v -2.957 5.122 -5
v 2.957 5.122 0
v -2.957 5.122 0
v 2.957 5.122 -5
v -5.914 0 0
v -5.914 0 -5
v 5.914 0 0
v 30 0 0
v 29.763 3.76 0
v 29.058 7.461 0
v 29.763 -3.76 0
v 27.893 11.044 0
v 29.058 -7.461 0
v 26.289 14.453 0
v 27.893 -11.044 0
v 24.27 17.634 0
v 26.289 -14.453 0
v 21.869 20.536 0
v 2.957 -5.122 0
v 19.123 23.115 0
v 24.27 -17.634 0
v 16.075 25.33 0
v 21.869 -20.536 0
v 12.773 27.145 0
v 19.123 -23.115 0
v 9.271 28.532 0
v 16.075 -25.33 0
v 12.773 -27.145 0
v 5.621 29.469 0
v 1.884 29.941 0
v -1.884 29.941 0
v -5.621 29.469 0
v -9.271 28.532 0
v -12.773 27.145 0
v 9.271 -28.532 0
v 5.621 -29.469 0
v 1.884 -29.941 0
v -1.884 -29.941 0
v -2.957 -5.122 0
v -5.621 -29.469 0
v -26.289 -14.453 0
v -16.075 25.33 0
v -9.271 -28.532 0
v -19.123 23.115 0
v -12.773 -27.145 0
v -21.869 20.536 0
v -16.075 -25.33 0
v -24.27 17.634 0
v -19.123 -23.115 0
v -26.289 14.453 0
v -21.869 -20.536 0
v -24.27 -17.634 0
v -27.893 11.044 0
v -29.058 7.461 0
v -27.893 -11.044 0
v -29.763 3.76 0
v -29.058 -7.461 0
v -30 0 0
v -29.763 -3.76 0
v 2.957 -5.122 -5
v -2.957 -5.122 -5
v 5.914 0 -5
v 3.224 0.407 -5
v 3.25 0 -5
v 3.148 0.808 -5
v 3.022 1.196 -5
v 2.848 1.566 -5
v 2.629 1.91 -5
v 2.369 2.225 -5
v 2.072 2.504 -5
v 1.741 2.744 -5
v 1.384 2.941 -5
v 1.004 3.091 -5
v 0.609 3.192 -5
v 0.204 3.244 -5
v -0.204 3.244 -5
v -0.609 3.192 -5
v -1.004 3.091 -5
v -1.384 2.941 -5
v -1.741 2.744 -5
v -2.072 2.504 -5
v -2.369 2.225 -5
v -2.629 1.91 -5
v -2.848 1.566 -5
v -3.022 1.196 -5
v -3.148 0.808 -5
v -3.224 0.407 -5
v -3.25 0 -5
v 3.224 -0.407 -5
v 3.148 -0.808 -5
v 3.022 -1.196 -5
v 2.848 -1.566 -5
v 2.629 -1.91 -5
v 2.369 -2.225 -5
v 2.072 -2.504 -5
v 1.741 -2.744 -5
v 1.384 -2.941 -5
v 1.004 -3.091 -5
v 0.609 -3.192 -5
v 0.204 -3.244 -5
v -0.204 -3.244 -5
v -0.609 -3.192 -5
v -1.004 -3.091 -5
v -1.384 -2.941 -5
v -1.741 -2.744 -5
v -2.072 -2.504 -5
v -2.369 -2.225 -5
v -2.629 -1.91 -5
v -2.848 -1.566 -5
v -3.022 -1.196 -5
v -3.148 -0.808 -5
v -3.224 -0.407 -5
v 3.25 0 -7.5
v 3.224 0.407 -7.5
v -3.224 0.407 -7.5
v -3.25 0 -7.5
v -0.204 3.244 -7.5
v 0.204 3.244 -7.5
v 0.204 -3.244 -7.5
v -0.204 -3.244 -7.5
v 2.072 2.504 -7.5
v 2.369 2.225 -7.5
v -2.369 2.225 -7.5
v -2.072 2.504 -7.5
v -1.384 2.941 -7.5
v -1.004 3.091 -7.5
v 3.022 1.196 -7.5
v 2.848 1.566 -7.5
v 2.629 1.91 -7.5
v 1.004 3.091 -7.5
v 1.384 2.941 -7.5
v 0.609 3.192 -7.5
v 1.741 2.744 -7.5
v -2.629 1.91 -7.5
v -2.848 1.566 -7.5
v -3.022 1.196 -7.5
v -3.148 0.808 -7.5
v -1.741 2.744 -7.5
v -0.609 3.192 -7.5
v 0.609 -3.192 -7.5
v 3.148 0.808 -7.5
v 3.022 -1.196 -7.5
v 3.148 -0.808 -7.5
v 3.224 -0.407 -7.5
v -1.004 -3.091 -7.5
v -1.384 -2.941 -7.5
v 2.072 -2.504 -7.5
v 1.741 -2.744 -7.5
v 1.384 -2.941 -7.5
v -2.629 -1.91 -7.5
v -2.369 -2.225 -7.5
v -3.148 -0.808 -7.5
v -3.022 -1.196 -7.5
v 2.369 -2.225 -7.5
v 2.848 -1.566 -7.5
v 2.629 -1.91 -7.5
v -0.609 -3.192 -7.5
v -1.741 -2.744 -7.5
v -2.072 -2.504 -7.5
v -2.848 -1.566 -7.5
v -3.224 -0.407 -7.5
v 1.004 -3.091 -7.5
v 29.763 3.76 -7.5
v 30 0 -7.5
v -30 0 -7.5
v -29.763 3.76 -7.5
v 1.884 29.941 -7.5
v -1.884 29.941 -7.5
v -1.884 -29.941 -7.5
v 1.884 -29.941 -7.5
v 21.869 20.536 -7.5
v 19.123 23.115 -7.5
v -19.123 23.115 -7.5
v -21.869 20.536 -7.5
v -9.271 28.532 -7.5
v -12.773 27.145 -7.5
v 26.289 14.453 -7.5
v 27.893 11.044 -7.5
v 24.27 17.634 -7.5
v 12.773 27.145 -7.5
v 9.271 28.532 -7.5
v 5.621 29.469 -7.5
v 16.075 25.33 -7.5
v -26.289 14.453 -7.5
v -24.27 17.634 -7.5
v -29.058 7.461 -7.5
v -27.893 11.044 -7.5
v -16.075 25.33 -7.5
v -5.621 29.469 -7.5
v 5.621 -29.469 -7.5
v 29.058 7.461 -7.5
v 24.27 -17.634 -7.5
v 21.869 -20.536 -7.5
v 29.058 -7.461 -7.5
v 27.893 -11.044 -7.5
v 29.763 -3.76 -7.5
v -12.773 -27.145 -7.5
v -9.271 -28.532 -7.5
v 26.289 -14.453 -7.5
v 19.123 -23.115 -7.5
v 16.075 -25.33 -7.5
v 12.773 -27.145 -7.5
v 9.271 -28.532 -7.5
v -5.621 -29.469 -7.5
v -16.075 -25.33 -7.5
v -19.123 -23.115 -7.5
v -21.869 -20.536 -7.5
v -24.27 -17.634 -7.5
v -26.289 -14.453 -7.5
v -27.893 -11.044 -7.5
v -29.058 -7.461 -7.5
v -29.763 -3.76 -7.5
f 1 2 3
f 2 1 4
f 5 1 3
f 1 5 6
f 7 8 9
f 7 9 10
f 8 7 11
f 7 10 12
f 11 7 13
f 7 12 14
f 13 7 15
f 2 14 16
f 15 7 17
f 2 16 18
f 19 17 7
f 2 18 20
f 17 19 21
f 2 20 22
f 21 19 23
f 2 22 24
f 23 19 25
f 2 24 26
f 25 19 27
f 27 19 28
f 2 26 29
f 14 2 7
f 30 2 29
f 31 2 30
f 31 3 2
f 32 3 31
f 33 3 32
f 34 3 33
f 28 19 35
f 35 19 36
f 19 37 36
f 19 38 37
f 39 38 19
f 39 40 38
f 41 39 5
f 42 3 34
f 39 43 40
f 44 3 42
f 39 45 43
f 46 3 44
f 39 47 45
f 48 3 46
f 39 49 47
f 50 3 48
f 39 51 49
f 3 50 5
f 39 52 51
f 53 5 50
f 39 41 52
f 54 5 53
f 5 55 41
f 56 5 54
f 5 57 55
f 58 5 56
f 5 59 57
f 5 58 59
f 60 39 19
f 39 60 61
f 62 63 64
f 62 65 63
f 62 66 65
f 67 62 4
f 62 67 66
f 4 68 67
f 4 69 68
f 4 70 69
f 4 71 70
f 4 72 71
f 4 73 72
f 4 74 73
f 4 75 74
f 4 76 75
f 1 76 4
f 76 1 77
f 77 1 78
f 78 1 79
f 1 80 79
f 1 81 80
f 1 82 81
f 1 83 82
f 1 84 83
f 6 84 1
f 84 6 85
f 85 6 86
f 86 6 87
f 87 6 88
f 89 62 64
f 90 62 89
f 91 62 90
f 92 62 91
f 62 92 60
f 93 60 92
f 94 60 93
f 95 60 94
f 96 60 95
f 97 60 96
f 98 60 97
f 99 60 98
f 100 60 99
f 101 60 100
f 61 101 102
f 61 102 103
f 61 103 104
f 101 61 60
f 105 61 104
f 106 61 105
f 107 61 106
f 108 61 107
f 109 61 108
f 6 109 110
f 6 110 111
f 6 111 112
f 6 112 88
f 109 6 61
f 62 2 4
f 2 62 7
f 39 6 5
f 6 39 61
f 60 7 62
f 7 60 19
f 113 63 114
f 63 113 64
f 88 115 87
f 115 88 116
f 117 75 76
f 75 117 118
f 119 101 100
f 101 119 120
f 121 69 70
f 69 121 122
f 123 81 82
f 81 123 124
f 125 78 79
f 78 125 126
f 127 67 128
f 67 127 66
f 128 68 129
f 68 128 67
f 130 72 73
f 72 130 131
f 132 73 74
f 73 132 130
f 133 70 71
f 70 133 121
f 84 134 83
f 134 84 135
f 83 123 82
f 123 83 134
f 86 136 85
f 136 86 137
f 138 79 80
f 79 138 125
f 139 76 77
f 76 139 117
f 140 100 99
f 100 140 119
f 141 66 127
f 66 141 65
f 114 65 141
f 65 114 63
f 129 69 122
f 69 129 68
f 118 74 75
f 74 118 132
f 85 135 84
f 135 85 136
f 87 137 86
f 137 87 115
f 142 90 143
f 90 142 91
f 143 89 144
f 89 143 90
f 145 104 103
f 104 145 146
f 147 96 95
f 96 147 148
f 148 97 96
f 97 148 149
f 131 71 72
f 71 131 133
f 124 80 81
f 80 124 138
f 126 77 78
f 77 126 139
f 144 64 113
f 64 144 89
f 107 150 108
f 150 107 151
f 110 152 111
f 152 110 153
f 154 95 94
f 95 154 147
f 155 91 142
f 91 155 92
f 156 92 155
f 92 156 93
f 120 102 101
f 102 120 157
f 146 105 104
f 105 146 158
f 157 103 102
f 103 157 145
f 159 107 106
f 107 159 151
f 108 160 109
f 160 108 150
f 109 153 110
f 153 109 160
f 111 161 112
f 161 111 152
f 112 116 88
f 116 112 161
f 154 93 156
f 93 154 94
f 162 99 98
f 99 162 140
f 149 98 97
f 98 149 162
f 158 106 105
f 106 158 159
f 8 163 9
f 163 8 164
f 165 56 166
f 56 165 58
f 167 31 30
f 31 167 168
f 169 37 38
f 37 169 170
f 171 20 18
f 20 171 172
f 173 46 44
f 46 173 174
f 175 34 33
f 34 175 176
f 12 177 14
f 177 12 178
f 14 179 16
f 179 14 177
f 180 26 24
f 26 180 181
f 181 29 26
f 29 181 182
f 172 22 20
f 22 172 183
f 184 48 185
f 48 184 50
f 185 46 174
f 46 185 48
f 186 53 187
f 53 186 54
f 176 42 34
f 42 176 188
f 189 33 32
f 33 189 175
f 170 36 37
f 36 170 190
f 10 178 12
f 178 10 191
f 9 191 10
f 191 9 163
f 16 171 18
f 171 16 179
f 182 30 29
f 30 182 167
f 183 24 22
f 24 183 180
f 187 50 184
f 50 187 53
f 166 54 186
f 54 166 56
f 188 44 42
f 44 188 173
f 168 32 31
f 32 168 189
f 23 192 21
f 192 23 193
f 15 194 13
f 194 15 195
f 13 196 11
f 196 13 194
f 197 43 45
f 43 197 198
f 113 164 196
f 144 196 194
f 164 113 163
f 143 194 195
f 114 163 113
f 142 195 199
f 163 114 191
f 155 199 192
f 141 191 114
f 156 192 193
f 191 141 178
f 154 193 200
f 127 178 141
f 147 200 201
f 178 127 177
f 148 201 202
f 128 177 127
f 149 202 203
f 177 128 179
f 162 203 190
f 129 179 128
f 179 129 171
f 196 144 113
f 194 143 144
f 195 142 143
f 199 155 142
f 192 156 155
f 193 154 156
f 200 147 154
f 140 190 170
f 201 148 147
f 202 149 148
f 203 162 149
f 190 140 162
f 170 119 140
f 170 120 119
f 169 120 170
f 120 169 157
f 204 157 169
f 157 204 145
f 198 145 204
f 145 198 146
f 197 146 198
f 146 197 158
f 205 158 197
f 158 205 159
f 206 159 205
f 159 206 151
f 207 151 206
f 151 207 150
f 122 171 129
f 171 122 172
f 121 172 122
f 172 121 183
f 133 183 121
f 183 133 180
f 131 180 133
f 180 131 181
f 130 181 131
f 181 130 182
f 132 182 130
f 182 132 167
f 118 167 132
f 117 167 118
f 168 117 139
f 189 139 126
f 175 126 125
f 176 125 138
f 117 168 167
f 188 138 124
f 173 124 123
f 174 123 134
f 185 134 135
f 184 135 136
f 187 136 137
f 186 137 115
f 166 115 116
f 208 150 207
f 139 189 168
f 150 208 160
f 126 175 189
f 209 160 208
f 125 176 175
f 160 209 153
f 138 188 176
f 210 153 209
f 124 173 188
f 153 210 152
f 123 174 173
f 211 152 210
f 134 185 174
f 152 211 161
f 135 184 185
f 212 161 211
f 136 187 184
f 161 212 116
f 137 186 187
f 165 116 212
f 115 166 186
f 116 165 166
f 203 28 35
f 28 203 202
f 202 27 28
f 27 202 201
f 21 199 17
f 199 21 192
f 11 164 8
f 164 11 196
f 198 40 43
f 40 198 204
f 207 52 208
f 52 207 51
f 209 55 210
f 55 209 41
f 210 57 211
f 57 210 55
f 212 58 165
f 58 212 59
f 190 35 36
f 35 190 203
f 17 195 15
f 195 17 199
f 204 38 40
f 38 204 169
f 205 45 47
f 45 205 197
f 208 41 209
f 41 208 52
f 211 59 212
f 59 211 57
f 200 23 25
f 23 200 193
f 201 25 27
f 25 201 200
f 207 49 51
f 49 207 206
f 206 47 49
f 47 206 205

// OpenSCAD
$fn = 50;


difference() {
	union() {
		translate(v = [0, 0, -7.5000000000]) {
			cylinder(h = 7.5000000000, r = 30.0000000000);
		}
	}
	union() {
		translate(v = [0, 0, 0]) {
			rotate(a = [0, 0, 0]) {
				difference() {
					union() {
						translate(v = [0, 0, -5]) {
							linear_extrude(height = 5) {
								polygon(points = [[5.9142500000, 0.0000000000], [2.9571250000, 5.1218907443], [-2.9571250000, 5.1218907443], [-5.9142500000, 0.0000000000], [-2.9571250000, -5.1218907443], [2.9571250000, -5.1218907443]]);
							}
						}
					}
					union();
				}
			}
		}
		#translate(v = [0, 0, -100.0000000000]) {
			cylinder(h = 200, r = 3.2500000000);
		}
	}
}
